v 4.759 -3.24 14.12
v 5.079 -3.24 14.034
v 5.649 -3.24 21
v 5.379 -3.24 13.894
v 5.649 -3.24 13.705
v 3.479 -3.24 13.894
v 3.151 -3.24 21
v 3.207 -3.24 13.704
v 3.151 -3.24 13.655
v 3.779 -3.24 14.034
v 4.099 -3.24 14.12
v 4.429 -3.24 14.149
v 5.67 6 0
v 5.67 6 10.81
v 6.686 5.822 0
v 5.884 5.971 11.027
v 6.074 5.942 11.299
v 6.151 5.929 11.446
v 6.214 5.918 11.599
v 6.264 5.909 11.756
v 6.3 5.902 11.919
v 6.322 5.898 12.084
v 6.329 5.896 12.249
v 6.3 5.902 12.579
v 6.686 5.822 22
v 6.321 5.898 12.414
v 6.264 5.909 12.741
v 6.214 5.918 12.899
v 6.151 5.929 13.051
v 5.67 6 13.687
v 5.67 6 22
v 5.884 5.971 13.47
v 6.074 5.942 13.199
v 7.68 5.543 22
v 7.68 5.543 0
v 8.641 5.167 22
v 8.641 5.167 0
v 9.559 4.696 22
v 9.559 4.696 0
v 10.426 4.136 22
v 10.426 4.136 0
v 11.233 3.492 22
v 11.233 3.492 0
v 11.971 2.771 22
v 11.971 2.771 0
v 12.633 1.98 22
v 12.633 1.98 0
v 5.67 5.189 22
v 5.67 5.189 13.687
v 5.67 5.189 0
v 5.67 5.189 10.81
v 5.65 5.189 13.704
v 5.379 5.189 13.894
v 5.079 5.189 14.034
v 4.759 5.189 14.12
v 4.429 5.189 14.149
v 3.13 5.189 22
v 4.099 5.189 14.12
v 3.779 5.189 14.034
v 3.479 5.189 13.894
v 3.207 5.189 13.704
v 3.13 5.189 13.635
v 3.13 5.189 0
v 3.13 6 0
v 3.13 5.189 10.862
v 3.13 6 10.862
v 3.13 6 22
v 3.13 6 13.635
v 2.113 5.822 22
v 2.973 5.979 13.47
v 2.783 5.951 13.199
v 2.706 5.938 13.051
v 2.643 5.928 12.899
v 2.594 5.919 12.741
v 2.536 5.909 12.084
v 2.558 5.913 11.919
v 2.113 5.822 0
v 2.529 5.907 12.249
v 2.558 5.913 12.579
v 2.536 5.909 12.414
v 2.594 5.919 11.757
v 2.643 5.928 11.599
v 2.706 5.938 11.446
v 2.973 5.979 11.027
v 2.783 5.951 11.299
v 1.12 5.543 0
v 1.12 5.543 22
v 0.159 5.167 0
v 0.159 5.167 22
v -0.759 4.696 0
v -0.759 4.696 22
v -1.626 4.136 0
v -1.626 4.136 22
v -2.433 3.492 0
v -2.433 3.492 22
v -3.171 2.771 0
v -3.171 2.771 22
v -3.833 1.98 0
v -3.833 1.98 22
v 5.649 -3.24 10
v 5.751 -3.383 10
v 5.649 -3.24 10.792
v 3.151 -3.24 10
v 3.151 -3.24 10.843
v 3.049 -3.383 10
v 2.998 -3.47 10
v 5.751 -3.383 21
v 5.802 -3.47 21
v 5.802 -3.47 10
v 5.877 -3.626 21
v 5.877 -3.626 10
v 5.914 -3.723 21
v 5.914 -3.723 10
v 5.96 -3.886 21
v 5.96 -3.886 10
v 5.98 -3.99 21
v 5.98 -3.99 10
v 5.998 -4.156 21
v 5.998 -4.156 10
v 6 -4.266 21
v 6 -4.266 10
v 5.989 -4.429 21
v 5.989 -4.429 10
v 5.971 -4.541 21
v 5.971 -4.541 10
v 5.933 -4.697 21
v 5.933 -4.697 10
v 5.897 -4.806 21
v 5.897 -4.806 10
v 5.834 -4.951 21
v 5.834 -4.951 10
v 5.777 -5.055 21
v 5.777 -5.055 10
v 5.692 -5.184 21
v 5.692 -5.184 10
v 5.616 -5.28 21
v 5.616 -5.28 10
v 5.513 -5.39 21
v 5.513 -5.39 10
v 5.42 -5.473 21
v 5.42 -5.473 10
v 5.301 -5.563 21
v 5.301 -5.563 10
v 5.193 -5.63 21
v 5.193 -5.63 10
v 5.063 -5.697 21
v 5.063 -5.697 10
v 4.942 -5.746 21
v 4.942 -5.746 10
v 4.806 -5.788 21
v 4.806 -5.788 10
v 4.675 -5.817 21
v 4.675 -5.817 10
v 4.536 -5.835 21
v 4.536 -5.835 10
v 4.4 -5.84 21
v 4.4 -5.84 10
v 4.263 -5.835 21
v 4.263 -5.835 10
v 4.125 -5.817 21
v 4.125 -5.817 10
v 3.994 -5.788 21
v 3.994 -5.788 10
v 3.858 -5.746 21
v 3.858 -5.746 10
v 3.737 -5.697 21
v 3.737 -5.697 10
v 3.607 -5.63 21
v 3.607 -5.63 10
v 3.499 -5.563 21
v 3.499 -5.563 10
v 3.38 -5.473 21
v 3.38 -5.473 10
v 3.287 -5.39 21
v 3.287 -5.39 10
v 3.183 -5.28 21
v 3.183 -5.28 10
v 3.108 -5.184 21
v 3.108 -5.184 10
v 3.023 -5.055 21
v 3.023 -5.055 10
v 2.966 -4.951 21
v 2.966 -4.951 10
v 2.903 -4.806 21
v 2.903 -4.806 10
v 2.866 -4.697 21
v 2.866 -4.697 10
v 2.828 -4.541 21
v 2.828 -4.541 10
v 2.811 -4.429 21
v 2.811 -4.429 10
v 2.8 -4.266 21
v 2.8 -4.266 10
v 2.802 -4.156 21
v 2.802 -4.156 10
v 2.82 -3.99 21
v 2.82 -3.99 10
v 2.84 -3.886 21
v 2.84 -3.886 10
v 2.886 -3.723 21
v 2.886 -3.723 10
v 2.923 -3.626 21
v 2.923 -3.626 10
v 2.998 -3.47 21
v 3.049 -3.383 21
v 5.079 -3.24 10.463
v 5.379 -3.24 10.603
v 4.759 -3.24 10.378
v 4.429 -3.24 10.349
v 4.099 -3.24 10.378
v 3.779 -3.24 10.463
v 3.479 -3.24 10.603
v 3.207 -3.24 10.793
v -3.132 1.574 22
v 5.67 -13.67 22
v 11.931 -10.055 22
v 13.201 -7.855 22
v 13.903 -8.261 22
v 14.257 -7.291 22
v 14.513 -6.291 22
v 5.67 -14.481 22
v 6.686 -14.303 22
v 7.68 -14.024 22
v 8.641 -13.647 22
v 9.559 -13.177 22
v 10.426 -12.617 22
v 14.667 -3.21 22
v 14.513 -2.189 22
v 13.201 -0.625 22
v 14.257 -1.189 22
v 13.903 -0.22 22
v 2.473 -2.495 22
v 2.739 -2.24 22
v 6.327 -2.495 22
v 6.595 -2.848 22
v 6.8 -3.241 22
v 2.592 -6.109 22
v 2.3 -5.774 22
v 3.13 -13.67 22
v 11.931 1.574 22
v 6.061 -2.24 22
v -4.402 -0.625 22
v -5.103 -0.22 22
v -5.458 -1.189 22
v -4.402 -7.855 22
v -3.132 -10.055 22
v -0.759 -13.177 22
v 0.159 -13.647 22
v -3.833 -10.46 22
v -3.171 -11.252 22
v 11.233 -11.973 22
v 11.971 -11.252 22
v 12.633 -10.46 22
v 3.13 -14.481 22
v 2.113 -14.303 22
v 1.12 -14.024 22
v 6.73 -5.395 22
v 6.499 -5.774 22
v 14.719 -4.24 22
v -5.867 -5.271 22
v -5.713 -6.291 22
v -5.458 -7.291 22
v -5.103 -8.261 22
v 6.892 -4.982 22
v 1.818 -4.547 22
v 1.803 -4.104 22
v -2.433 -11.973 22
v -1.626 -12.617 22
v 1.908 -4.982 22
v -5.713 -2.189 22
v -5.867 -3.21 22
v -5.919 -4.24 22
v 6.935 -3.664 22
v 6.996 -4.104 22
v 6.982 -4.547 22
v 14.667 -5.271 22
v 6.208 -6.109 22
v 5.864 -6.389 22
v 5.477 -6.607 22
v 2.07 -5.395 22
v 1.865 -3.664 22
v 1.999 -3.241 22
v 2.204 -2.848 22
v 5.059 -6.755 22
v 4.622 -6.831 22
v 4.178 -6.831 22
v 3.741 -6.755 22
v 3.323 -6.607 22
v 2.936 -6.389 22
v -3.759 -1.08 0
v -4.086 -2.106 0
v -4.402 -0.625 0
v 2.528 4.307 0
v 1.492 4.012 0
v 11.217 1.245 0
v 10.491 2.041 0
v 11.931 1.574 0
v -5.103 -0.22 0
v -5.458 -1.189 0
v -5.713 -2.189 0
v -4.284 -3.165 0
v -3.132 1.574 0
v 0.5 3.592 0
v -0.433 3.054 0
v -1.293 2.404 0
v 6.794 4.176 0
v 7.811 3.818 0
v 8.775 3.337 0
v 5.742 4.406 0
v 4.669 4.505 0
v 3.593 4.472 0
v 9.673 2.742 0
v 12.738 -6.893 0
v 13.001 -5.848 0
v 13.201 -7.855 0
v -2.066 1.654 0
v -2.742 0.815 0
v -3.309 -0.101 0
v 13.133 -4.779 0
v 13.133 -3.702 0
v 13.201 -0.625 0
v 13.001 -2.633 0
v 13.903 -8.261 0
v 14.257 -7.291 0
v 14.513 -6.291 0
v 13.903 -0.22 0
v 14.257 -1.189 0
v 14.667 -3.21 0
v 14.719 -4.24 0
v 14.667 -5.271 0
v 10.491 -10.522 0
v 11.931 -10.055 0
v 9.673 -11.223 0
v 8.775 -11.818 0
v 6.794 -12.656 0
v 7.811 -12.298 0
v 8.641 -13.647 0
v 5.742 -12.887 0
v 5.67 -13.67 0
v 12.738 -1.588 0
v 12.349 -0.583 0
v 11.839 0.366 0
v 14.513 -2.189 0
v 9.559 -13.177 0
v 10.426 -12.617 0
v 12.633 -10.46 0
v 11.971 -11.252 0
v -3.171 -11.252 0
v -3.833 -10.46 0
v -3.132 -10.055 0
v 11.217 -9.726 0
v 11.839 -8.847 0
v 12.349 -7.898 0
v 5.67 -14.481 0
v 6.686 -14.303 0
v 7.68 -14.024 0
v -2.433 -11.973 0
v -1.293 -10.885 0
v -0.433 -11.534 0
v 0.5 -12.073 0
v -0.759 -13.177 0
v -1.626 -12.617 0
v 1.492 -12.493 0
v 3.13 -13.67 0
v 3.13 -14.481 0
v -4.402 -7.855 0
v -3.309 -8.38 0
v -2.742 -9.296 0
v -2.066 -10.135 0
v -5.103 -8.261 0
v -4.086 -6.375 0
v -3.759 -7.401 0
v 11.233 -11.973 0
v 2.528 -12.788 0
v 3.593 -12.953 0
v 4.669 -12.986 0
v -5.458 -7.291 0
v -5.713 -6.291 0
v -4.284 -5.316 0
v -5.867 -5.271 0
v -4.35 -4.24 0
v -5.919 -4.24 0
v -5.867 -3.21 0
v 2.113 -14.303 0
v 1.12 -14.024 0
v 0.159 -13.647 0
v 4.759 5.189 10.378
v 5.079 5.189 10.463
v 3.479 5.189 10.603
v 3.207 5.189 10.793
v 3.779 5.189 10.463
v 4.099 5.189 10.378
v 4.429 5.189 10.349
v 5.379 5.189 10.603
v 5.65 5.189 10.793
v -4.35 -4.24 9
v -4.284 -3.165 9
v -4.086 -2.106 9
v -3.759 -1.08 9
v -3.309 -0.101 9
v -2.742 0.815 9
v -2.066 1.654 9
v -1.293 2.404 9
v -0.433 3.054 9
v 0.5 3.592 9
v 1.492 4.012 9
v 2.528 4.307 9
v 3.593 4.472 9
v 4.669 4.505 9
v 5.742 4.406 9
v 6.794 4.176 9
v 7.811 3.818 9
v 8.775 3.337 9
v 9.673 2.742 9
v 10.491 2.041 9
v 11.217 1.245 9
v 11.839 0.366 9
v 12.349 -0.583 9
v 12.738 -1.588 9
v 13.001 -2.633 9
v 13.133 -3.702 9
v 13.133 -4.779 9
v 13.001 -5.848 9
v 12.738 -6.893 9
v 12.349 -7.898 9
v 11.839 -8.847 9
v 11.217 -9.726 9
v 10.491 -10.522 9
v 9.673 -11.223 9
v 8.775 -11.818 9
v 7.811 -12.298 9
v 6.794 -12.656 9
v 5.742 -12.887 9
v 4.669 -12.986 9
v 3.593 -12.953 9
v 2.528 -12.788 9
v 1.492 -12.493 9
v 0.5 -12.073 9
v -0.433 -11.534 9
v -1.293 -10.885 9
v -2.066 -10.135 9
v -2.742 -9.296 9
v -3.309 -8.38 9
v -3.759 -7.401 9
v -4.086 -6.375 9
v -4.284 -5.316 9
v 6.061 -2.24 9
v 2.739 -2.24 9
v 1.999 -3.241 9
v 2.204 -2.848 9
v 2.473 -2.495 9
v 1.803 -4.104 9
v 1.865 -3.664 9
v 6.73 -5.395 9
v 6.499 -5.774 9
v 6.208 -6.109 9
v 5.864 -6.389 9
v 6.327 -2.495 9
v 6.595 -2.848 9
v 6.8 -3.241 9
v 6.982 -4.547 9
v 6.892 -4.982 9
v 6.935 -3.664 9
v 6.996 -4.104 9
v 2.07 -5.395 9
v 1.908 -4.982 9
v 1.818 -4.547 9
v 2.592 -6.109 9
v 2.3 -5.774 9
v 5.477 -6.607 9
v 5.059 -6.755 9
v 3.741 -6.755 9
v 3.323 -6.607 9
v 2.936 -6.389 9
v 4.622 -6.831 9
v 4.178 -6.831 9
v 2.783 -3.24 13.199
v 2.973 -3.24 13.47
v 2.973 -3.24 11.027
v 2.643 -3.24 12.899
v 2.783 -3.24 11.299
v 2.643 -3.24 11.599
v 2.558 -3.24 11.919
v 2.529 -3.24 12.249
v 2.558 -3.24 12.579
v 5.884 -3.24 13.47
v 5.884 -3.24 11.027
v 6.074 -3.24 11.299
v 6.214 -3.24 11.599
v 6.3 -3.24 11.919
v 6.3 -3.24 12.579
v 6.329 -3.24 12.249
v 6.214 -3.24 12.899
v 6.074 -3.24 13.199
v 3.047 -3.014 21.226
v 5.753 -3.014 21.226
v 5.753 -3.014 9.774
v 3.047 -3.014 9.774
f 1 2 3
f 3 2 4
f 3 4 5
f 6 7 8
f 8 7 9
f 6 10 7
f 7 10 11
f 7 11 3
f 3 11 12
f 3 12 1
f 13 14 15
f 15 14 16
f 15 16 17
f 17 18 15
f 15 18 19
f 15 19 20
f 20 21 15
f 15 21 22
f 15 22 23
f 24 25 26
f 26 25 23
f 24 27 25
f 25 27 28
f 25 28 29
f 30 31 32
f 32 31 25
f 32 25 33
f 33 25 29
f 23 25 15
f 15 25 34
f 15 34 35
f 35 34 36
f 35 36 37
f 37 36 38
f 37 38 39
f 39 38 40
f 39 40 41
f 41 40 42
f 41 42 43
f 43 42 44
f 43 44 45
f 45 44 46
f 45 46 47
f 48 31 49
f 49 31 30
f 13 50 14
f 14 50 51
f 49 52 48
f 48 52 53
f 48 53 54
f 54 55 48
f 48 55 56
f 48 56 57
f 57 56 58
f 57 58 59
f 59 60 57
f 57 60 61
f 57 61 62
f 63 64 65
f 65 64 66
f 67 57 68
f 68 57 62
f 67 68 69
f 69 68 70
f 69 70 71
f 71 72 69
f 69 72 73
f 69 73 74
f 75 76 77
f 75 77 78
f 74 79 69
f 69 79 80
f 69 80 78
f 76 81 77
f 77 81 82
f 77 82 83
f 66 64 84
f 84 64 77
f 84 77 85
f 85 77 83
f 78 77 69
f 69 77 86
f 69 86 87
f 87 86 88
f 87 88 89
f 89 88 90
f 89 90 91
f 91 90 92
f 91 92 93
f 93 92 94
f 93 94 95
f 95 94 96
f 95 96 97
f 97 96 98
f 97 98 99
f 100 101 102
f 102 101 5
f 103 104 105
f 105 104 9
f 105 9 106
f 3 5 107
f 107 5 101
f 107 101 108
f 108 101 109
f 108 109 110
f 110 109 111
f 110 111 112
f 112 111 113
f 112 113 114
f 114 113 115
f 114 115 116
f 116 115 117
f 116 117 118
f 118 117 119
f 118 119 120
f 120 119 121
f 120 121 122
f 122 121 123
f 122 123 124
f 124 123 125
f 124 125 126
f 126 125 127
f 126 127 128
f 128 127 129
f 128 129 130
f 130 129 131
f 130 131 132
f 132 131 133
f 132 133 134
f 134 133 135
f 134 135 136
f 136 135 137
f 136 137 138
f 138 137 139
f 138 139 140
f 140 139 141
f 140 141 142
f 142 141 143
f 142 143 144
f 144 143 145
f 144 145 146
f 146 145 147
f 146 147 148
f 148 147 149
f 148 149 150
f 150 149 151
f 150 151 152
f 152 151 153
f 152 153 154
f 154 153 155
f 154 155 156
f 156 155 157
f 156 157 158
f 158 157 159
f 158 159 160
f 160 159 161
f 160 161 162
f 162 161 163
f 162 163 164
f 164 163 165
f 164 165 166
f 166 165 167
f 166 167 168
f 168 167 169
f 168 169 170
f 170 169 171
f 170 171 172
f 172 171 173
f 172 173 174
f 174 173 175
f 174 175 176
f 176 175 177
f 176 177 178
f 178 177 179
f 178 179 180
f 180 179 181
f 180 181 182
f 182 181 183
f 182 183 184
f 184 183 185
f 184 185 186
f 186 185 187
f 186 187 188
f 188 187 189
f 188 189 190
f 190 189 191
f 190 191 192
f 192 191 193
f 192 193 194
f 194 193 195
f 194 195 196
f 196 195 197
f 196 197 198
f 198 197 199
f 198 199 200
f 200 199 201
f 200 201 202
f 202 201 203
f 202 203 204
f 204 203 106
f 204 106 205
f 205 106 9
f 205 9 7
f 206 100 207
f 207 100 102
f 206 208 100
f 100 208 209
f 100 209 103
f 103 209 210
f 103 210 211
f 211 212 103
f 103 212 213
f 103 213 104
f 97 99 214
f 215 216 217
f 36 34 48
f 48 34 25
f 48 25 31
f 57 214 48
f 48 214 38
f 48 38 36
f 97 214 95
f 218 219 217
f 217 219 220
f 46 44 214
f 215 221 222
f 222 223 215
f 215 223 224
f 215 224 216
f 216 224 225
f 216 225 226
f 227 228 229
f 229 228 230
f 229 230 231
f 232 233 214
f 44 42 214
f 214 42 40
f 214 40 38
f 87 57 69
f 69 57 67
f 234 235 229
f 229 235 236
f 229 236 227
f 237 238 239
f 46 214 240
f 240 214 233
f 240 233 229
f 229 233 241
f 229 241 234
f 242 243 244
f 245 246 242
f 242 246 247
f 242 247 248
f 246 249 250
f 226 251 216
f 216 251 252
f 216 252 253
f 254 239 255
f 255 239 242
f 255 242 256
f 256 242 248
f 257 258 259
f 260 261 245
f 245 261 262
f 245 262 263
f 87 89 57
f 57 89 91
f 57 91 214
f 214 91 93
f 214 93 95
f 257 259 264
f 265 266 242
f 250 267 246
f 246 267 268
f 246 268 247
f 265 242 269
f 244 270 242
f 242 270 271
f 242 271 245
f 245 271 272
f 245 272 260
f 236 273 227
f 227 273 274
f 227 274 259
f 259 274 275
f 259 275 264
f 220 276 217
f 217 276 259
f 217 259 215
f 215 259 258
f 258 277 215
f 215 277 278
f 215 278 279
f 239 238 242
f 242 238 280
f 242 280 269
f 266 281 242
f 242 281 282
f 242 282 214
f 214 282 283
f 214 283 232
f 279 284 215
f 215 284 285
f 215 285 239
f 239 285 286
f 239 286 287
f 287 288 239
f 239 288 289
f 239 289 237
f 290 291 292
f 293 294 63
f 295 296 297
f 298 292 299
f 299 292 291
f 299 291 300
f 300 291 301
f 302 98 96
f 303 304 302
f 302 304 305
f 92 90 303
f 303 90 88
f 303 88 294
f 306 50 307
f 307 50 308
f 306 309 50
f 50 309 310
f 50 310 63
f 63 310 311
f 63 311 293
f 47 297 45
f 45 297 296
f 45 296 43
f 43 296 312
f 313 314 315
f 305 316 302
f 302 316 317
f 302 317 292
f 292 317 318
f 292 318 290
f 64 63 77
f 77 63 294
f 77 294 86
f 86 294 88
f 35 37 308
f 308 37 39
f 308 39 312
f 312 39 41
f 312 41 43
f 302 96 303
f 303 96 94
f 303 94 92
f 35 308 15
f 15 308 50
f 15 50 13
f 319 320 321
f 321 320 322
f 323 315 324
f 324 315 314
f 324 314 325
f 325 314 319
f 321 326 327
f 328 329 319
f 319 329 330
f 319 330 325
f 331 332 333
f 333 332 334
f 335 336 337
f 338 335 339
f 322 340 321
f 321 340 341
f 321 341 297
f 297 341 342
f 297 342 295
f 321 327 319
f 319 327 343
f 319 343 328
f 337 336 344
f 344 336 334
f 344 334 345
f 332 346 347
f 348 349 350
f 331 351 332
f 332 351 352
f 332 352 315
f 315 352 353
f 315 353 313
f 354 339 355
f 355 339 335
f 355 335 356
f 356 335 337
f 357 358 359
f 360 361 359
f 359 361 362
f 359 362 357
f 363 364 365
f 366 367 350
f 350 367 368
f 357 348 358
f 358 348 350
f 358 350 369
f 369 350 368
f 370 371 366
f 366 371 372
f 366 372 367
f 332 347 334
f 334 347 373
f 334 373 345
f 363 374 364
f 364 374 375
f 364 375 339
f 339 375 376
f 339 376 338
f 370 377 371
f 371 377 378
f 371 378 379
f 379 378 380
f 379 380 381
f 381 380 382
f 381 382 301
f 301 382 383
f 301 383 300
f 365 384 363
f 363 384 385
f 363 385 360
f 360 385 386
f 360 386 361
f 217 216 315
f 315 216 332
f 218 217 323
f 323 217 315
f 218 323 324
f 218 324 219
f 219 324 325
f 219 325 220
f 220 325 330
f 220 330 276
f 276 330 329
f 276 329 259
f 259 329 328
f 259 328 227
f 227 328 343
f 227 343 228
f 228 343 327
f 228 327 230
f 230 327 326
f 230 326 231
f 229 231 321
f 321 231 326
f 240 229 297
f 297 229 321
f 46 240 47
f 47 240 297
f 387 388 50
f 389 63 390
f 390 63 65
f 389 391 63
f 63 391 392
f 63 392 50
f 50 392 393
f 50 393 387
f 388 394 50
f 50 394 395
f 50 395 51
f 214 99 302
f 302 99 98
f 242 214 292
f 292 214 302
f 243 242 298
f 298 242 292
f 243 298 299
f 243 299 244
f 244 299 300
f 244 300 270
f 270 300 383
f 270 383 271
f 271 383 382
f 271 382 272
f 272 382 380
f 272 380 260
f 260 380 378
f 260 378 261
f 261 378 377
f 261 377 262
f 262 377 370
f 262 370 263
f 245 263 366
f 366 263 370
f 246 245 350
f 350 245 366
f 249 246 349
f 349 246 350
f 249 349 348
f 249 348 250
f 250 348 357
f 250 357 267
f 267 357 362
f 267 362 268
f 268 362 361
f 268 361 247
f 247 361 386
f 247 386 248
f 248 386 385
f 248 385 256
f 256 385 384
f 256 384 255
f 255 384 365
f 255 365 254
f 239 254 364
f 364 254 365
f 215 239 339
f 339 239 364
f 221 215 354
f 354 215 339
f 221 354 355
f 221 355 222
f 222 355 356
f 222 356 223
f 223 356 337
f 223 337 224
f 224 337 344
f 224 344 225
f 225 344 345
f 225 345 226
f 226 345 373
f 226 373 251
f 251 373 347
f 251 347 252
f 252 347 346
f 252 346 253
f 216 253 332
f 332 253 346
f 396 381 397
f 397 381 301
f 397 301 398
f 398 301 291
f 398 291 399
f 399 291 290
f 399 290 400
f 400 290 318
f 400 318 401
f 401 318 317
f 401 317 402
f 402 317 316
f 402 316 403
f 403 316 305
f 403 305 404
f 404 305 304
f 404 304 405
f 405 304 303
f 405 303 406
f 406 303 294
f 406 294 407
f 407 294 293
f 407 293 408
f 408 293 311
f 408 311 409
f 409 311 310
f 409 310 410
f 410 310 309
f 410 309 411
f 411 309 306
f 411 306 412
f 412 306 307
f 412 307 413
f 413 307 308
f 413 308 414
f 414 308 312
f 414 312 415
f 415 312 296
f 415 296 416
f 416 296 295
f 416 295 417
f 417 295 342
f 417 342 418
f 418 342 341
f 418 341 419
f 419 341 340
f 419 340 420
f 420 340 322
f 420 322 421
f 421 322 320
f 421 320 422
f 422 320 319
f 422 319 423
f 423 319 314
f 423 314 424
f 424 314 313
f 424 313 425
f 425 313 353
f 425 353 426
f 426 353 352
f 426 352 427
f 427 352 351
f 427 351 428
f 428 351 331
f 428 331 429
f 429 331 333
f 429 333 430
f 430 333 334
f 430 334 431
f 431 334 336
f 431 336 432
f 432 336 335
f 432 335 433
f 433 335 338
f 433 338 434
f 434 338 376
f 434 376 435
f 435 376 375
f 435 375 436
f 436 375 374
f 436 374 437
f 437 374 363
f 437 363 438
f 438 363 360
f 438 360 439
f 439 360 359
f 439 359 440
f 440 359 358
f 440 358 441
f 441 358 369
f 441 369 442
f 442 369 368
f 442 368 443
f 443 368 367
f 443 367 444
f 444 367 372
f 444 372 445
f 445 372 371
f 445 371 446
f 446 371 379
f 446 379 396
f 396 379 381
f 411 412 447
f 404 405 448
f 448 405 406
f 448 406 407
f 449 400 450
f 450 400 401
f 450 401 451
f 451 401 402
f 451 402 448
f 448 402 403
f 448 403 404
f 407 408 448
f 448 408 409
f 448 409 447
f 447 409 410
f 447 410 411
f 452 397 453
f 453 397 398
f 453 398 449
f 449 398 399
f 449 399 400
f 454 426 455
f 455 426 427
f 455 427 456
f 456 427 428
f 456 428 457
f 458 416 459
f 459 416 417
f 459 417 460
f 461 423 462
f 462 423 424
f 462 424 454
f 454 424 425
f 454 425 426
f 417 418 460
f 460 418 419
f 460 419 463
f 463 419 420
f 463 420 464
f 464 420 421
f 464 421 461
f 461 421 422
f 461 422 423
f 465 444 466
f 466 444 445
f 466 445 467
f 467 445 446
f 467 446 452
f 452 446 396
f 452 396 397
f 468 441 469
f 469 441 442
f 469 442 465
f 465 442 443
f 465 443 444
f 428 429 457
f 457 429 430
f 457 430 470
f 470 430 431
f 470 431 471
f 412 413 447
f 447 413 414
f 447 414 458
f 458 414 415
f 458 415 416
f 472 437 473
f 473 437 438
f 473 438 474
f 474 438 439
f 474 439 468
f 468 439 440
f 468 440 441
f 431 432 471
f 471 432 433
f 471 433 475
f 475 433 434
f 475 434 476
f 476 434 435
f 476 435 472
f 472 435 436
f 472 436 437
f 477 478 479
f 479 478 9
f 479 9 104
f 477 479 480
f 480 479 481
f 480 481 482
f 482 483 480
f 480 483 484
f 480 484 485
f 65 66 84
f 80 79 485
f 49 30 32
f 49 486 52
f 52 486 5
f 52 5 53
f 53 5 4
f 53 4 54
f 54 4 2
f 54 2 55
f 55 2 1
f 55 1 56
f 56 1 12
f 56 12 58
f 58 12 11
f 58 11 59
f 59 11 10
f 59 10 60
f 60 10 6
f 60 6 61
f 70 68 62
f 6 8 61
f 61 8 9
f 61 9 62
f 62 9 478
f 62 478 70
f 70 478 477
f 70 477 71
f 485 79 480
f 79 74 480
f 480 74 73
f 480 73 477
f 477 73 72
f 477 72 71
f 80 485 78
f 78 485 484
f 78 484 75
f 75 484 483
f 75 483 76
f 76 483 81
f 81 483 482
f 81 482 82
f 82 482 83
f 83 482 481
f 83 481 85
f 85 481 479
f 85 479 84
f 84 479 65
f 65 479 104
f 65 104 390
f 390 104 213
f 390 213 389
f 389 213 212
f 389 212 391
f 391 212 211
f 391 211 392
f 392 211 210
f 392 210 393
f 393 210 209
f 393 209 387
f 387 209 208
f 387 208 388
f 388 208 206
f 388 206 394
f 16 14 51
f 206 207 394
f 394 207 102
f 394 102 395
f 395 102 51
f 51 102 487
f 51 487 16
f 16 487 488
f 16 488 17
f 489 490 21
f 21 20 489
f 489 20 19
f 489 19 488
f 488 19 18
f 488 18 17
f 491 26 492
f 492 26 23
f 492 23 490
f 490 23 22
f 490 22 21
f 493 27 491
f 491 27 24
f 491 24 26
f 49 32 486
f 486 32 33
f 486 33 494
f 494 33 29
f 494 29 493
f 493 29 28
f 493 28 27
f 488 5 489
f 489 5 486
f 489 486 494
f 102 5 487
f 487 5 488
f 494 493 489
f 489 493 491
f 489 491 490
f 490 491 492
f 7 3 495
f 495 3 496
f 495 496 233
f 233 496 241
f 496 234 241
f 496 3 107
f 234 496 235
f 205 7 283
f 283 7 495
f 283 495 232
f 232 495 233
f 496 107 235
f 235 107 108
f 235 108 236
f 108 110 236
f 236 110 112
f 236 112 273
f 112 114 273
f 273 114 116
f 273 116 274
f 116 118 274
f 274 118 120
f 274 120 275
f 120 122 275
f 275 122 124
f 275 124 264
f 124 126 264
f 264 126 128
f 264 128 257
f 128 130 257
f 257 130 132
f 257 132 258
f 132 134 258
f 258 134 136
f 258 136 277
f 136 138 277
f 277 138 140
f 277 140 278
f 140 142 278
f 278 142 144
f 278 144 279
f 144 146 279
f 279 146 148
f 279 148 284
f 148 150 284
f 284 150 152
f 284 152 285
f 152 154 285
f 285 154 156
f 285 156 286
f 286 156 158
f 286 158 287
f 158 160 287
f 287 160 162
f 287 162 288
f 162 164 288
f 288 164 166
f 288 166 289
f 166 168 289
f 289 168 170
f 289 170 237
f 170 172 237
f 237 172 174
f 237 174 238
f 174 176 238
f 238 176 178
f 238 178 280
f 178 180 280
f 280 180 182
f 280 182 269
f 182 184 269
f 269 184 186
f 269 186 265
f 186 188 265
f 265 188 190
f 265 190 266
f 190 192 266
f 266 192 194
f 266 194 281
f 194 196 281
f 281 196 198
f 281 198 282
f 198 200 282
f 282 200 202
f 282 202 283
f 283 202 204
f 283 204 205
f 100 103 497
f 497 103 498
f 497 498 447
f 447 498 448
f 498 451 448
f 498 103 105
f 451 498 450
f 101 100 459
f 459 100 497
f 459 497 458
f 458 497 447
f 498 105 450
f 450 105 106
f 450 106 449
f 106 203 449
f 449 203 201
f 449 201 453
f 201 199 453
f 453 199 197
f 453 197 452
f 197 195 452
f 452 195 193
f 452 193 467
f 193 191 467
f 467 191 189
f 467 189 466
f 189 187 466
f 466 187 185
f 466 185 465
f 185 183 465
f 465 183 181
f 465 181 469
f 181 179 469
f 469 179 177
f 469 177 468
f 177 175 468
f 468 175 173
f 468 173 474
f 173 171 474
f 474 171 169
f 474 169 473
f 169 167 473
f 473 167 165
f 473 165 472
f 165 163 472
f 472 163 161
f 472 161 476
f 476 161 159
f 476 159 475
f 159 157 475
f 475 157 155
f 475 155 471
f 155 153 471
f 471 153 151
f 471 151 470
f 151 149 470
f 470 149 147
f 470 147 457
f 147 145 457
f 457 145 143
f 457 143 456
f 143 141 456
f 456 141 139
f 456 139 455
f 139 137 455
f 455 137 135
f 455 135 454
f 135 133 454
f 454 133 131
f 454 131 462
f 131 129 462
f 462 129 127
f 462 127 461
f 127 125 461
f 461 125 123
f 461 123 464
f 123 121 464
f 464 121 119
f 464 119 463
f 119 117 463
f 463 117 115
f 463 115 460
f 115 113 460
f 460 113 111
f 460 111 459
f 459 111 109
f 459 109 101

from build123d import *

# Parameters (mm, degrees)
EXTRUDE_1_DEPTH          = 22
SKETCH_2_R               = 8.75
CUT_EXTRUDE_1_DEPTH      = 9
CUT_EXTRUDE_3_DEPTH      = 1
CUT_EXTRUDE_3_DEPTH_BACK = 8.42975
SKETCH_4_R               = 1.9
CHAMFER_2_SIZE           = 1


with BuildPart() as part:
    # Эскиз1 → Бобышка-Вытянуть1 (new body)
    with BuildSketch(Plane.XY):
        with BuildLine():
            Line((13.201310027, -7.85542296), (13.90326512, -8.260696921))
            ThreePointArc((13.90326512, -8.260696921), (14.718656981, -4.240400213), (13.903265122, -0.220103504))
            Line((13.903265122, -0.220103504), (13.201310027, -0.625377467))
            Line((13.201310027, -0.625377467), (11.931310033, 1.574327047))
            Line((11.931310033, 1.574327047), (12.633265127, 1.979601009))
            ThreePointArc((12.633265127, 1.979601009), (9.559281984, 4.695899416), (5.669906988, 5.999897702))
            Line((5.669906988, 5.999897702), (5.669906988, 5.189349779))
            Line((5.669906988, 5.189349779), (3.129906988, 5.189349779))
            Line((3.129906988, 5.189349779), (3.129906988, 5.999897708))
            ThreePointArc((3.129906988, 5.999897708), (-0.759468012, 4.69589942), (-3.833451156, 1.979601011))
            Line((-3.833451156, 1.979601011), (-3.131496059, 1.574327046))
            Line((-3.131496059, 1.574327046), (-4.401496055, -0.625377472))
            Line((-4.401496055, -0.625377472), (-5.103451147, -0.22010351))
            ThreePointArc((-5.103451147, -0.22010351), (-5.918843009, -4.240400218), (-5.10345115, -8.260696926))
            Line((-5.10345115, -8.260696926), (-4.401496056, -7.855422963))
            Line((-4.401496056, -7.855422963), (-3.13149606, -10.055127481))
            Line((-3.13149606, -10.055127481), (-3.833451154, -10.460401444))
            ThreePointArc((-3.833451154, -10.460401444), (-0.759468012, -13.17669985), (3.129906983, -14.480698136))
            Line((3.129906983, -14.480698136), (3.129906983, -13.670150213))
            Line((3.129906983, -13.670150213), (5.669906983, -13.670150213))
            Line((5.669906983, -13.670150213), (5.669906983, -14.480698142))
            ThreePointArc((5.669906983, -14.480698142), (9.559281984, -13.176699854), (12.633265129, -10.460401443))
            Line((12.633265129, -10.460401443), (11.931310031, -10.055127478))
            Line((11.931310031, -10.055127478), (13.201310027, -7.85542296))
        make_face()
        with BuildLine():
            Line((3.15090739, -3.240400222), (5.64890659, -3.240400222))
            ThreePointArc((5.64890659, -3.240400222), (4.39990699, -5.840400222), (3.15090739, -3.240400222))
        make_face(mode=Mode.SUBTRACT)
    extrude(amount=EXTRUDE_1_DEPTH)

    # Эскиз2 → Вырез-Вытянуть1 (cut)
    with BuildSketch(Plane(origin=(0, 0, 0), x_dir=(-1, 0, 0), z_dir=(0, 0, -1))):
        with Locations((-4.39990699, -4.240400222)):
            Circle(SKETCH_2_R)
    extrude(amount=-CUT_EXTRUDE_1_DEPTH, mode=Mode.SUBTRACT)

    # Эскиз4 → Вырез-Вытянуть3 (cut, two sides: drawn at the far end of the back side and taken through both)
    with BuildSketch(Plane(origin=(0, 5.189349779, 0), x_dir=(1, 0, 0), z_dir=(0, 1, 0)).offset(-CUT_EXTRUDE_3_DEPTH_BACK)):
        with Locations(Location((4.428692677, -12.248697559, 0), (0, 0, 50.042601615))):
            Circle(SKETCH_4_R)
    extrude(amount=CUT_EXTRUDE_3_DEPTH + CUT_EXTRUDE_3_DEPTH_BACK, mode=Mode.SUBTRACT)

    # Фаска2
    chamfer_2_edges = [part.edges().sort_by_distance(p)[0] for p in [
        (4.39990699, -5.840400222, 22),
        (4.39990699, -3.240400222, 22),
        (4.39990699, -3.240400222, 9),
        (4.39990699, -5.840400222, 9),
    ]]
    chamfer(chamfer_2_edges, length=CHAMFER_2_SIZE)


solid = part.part
